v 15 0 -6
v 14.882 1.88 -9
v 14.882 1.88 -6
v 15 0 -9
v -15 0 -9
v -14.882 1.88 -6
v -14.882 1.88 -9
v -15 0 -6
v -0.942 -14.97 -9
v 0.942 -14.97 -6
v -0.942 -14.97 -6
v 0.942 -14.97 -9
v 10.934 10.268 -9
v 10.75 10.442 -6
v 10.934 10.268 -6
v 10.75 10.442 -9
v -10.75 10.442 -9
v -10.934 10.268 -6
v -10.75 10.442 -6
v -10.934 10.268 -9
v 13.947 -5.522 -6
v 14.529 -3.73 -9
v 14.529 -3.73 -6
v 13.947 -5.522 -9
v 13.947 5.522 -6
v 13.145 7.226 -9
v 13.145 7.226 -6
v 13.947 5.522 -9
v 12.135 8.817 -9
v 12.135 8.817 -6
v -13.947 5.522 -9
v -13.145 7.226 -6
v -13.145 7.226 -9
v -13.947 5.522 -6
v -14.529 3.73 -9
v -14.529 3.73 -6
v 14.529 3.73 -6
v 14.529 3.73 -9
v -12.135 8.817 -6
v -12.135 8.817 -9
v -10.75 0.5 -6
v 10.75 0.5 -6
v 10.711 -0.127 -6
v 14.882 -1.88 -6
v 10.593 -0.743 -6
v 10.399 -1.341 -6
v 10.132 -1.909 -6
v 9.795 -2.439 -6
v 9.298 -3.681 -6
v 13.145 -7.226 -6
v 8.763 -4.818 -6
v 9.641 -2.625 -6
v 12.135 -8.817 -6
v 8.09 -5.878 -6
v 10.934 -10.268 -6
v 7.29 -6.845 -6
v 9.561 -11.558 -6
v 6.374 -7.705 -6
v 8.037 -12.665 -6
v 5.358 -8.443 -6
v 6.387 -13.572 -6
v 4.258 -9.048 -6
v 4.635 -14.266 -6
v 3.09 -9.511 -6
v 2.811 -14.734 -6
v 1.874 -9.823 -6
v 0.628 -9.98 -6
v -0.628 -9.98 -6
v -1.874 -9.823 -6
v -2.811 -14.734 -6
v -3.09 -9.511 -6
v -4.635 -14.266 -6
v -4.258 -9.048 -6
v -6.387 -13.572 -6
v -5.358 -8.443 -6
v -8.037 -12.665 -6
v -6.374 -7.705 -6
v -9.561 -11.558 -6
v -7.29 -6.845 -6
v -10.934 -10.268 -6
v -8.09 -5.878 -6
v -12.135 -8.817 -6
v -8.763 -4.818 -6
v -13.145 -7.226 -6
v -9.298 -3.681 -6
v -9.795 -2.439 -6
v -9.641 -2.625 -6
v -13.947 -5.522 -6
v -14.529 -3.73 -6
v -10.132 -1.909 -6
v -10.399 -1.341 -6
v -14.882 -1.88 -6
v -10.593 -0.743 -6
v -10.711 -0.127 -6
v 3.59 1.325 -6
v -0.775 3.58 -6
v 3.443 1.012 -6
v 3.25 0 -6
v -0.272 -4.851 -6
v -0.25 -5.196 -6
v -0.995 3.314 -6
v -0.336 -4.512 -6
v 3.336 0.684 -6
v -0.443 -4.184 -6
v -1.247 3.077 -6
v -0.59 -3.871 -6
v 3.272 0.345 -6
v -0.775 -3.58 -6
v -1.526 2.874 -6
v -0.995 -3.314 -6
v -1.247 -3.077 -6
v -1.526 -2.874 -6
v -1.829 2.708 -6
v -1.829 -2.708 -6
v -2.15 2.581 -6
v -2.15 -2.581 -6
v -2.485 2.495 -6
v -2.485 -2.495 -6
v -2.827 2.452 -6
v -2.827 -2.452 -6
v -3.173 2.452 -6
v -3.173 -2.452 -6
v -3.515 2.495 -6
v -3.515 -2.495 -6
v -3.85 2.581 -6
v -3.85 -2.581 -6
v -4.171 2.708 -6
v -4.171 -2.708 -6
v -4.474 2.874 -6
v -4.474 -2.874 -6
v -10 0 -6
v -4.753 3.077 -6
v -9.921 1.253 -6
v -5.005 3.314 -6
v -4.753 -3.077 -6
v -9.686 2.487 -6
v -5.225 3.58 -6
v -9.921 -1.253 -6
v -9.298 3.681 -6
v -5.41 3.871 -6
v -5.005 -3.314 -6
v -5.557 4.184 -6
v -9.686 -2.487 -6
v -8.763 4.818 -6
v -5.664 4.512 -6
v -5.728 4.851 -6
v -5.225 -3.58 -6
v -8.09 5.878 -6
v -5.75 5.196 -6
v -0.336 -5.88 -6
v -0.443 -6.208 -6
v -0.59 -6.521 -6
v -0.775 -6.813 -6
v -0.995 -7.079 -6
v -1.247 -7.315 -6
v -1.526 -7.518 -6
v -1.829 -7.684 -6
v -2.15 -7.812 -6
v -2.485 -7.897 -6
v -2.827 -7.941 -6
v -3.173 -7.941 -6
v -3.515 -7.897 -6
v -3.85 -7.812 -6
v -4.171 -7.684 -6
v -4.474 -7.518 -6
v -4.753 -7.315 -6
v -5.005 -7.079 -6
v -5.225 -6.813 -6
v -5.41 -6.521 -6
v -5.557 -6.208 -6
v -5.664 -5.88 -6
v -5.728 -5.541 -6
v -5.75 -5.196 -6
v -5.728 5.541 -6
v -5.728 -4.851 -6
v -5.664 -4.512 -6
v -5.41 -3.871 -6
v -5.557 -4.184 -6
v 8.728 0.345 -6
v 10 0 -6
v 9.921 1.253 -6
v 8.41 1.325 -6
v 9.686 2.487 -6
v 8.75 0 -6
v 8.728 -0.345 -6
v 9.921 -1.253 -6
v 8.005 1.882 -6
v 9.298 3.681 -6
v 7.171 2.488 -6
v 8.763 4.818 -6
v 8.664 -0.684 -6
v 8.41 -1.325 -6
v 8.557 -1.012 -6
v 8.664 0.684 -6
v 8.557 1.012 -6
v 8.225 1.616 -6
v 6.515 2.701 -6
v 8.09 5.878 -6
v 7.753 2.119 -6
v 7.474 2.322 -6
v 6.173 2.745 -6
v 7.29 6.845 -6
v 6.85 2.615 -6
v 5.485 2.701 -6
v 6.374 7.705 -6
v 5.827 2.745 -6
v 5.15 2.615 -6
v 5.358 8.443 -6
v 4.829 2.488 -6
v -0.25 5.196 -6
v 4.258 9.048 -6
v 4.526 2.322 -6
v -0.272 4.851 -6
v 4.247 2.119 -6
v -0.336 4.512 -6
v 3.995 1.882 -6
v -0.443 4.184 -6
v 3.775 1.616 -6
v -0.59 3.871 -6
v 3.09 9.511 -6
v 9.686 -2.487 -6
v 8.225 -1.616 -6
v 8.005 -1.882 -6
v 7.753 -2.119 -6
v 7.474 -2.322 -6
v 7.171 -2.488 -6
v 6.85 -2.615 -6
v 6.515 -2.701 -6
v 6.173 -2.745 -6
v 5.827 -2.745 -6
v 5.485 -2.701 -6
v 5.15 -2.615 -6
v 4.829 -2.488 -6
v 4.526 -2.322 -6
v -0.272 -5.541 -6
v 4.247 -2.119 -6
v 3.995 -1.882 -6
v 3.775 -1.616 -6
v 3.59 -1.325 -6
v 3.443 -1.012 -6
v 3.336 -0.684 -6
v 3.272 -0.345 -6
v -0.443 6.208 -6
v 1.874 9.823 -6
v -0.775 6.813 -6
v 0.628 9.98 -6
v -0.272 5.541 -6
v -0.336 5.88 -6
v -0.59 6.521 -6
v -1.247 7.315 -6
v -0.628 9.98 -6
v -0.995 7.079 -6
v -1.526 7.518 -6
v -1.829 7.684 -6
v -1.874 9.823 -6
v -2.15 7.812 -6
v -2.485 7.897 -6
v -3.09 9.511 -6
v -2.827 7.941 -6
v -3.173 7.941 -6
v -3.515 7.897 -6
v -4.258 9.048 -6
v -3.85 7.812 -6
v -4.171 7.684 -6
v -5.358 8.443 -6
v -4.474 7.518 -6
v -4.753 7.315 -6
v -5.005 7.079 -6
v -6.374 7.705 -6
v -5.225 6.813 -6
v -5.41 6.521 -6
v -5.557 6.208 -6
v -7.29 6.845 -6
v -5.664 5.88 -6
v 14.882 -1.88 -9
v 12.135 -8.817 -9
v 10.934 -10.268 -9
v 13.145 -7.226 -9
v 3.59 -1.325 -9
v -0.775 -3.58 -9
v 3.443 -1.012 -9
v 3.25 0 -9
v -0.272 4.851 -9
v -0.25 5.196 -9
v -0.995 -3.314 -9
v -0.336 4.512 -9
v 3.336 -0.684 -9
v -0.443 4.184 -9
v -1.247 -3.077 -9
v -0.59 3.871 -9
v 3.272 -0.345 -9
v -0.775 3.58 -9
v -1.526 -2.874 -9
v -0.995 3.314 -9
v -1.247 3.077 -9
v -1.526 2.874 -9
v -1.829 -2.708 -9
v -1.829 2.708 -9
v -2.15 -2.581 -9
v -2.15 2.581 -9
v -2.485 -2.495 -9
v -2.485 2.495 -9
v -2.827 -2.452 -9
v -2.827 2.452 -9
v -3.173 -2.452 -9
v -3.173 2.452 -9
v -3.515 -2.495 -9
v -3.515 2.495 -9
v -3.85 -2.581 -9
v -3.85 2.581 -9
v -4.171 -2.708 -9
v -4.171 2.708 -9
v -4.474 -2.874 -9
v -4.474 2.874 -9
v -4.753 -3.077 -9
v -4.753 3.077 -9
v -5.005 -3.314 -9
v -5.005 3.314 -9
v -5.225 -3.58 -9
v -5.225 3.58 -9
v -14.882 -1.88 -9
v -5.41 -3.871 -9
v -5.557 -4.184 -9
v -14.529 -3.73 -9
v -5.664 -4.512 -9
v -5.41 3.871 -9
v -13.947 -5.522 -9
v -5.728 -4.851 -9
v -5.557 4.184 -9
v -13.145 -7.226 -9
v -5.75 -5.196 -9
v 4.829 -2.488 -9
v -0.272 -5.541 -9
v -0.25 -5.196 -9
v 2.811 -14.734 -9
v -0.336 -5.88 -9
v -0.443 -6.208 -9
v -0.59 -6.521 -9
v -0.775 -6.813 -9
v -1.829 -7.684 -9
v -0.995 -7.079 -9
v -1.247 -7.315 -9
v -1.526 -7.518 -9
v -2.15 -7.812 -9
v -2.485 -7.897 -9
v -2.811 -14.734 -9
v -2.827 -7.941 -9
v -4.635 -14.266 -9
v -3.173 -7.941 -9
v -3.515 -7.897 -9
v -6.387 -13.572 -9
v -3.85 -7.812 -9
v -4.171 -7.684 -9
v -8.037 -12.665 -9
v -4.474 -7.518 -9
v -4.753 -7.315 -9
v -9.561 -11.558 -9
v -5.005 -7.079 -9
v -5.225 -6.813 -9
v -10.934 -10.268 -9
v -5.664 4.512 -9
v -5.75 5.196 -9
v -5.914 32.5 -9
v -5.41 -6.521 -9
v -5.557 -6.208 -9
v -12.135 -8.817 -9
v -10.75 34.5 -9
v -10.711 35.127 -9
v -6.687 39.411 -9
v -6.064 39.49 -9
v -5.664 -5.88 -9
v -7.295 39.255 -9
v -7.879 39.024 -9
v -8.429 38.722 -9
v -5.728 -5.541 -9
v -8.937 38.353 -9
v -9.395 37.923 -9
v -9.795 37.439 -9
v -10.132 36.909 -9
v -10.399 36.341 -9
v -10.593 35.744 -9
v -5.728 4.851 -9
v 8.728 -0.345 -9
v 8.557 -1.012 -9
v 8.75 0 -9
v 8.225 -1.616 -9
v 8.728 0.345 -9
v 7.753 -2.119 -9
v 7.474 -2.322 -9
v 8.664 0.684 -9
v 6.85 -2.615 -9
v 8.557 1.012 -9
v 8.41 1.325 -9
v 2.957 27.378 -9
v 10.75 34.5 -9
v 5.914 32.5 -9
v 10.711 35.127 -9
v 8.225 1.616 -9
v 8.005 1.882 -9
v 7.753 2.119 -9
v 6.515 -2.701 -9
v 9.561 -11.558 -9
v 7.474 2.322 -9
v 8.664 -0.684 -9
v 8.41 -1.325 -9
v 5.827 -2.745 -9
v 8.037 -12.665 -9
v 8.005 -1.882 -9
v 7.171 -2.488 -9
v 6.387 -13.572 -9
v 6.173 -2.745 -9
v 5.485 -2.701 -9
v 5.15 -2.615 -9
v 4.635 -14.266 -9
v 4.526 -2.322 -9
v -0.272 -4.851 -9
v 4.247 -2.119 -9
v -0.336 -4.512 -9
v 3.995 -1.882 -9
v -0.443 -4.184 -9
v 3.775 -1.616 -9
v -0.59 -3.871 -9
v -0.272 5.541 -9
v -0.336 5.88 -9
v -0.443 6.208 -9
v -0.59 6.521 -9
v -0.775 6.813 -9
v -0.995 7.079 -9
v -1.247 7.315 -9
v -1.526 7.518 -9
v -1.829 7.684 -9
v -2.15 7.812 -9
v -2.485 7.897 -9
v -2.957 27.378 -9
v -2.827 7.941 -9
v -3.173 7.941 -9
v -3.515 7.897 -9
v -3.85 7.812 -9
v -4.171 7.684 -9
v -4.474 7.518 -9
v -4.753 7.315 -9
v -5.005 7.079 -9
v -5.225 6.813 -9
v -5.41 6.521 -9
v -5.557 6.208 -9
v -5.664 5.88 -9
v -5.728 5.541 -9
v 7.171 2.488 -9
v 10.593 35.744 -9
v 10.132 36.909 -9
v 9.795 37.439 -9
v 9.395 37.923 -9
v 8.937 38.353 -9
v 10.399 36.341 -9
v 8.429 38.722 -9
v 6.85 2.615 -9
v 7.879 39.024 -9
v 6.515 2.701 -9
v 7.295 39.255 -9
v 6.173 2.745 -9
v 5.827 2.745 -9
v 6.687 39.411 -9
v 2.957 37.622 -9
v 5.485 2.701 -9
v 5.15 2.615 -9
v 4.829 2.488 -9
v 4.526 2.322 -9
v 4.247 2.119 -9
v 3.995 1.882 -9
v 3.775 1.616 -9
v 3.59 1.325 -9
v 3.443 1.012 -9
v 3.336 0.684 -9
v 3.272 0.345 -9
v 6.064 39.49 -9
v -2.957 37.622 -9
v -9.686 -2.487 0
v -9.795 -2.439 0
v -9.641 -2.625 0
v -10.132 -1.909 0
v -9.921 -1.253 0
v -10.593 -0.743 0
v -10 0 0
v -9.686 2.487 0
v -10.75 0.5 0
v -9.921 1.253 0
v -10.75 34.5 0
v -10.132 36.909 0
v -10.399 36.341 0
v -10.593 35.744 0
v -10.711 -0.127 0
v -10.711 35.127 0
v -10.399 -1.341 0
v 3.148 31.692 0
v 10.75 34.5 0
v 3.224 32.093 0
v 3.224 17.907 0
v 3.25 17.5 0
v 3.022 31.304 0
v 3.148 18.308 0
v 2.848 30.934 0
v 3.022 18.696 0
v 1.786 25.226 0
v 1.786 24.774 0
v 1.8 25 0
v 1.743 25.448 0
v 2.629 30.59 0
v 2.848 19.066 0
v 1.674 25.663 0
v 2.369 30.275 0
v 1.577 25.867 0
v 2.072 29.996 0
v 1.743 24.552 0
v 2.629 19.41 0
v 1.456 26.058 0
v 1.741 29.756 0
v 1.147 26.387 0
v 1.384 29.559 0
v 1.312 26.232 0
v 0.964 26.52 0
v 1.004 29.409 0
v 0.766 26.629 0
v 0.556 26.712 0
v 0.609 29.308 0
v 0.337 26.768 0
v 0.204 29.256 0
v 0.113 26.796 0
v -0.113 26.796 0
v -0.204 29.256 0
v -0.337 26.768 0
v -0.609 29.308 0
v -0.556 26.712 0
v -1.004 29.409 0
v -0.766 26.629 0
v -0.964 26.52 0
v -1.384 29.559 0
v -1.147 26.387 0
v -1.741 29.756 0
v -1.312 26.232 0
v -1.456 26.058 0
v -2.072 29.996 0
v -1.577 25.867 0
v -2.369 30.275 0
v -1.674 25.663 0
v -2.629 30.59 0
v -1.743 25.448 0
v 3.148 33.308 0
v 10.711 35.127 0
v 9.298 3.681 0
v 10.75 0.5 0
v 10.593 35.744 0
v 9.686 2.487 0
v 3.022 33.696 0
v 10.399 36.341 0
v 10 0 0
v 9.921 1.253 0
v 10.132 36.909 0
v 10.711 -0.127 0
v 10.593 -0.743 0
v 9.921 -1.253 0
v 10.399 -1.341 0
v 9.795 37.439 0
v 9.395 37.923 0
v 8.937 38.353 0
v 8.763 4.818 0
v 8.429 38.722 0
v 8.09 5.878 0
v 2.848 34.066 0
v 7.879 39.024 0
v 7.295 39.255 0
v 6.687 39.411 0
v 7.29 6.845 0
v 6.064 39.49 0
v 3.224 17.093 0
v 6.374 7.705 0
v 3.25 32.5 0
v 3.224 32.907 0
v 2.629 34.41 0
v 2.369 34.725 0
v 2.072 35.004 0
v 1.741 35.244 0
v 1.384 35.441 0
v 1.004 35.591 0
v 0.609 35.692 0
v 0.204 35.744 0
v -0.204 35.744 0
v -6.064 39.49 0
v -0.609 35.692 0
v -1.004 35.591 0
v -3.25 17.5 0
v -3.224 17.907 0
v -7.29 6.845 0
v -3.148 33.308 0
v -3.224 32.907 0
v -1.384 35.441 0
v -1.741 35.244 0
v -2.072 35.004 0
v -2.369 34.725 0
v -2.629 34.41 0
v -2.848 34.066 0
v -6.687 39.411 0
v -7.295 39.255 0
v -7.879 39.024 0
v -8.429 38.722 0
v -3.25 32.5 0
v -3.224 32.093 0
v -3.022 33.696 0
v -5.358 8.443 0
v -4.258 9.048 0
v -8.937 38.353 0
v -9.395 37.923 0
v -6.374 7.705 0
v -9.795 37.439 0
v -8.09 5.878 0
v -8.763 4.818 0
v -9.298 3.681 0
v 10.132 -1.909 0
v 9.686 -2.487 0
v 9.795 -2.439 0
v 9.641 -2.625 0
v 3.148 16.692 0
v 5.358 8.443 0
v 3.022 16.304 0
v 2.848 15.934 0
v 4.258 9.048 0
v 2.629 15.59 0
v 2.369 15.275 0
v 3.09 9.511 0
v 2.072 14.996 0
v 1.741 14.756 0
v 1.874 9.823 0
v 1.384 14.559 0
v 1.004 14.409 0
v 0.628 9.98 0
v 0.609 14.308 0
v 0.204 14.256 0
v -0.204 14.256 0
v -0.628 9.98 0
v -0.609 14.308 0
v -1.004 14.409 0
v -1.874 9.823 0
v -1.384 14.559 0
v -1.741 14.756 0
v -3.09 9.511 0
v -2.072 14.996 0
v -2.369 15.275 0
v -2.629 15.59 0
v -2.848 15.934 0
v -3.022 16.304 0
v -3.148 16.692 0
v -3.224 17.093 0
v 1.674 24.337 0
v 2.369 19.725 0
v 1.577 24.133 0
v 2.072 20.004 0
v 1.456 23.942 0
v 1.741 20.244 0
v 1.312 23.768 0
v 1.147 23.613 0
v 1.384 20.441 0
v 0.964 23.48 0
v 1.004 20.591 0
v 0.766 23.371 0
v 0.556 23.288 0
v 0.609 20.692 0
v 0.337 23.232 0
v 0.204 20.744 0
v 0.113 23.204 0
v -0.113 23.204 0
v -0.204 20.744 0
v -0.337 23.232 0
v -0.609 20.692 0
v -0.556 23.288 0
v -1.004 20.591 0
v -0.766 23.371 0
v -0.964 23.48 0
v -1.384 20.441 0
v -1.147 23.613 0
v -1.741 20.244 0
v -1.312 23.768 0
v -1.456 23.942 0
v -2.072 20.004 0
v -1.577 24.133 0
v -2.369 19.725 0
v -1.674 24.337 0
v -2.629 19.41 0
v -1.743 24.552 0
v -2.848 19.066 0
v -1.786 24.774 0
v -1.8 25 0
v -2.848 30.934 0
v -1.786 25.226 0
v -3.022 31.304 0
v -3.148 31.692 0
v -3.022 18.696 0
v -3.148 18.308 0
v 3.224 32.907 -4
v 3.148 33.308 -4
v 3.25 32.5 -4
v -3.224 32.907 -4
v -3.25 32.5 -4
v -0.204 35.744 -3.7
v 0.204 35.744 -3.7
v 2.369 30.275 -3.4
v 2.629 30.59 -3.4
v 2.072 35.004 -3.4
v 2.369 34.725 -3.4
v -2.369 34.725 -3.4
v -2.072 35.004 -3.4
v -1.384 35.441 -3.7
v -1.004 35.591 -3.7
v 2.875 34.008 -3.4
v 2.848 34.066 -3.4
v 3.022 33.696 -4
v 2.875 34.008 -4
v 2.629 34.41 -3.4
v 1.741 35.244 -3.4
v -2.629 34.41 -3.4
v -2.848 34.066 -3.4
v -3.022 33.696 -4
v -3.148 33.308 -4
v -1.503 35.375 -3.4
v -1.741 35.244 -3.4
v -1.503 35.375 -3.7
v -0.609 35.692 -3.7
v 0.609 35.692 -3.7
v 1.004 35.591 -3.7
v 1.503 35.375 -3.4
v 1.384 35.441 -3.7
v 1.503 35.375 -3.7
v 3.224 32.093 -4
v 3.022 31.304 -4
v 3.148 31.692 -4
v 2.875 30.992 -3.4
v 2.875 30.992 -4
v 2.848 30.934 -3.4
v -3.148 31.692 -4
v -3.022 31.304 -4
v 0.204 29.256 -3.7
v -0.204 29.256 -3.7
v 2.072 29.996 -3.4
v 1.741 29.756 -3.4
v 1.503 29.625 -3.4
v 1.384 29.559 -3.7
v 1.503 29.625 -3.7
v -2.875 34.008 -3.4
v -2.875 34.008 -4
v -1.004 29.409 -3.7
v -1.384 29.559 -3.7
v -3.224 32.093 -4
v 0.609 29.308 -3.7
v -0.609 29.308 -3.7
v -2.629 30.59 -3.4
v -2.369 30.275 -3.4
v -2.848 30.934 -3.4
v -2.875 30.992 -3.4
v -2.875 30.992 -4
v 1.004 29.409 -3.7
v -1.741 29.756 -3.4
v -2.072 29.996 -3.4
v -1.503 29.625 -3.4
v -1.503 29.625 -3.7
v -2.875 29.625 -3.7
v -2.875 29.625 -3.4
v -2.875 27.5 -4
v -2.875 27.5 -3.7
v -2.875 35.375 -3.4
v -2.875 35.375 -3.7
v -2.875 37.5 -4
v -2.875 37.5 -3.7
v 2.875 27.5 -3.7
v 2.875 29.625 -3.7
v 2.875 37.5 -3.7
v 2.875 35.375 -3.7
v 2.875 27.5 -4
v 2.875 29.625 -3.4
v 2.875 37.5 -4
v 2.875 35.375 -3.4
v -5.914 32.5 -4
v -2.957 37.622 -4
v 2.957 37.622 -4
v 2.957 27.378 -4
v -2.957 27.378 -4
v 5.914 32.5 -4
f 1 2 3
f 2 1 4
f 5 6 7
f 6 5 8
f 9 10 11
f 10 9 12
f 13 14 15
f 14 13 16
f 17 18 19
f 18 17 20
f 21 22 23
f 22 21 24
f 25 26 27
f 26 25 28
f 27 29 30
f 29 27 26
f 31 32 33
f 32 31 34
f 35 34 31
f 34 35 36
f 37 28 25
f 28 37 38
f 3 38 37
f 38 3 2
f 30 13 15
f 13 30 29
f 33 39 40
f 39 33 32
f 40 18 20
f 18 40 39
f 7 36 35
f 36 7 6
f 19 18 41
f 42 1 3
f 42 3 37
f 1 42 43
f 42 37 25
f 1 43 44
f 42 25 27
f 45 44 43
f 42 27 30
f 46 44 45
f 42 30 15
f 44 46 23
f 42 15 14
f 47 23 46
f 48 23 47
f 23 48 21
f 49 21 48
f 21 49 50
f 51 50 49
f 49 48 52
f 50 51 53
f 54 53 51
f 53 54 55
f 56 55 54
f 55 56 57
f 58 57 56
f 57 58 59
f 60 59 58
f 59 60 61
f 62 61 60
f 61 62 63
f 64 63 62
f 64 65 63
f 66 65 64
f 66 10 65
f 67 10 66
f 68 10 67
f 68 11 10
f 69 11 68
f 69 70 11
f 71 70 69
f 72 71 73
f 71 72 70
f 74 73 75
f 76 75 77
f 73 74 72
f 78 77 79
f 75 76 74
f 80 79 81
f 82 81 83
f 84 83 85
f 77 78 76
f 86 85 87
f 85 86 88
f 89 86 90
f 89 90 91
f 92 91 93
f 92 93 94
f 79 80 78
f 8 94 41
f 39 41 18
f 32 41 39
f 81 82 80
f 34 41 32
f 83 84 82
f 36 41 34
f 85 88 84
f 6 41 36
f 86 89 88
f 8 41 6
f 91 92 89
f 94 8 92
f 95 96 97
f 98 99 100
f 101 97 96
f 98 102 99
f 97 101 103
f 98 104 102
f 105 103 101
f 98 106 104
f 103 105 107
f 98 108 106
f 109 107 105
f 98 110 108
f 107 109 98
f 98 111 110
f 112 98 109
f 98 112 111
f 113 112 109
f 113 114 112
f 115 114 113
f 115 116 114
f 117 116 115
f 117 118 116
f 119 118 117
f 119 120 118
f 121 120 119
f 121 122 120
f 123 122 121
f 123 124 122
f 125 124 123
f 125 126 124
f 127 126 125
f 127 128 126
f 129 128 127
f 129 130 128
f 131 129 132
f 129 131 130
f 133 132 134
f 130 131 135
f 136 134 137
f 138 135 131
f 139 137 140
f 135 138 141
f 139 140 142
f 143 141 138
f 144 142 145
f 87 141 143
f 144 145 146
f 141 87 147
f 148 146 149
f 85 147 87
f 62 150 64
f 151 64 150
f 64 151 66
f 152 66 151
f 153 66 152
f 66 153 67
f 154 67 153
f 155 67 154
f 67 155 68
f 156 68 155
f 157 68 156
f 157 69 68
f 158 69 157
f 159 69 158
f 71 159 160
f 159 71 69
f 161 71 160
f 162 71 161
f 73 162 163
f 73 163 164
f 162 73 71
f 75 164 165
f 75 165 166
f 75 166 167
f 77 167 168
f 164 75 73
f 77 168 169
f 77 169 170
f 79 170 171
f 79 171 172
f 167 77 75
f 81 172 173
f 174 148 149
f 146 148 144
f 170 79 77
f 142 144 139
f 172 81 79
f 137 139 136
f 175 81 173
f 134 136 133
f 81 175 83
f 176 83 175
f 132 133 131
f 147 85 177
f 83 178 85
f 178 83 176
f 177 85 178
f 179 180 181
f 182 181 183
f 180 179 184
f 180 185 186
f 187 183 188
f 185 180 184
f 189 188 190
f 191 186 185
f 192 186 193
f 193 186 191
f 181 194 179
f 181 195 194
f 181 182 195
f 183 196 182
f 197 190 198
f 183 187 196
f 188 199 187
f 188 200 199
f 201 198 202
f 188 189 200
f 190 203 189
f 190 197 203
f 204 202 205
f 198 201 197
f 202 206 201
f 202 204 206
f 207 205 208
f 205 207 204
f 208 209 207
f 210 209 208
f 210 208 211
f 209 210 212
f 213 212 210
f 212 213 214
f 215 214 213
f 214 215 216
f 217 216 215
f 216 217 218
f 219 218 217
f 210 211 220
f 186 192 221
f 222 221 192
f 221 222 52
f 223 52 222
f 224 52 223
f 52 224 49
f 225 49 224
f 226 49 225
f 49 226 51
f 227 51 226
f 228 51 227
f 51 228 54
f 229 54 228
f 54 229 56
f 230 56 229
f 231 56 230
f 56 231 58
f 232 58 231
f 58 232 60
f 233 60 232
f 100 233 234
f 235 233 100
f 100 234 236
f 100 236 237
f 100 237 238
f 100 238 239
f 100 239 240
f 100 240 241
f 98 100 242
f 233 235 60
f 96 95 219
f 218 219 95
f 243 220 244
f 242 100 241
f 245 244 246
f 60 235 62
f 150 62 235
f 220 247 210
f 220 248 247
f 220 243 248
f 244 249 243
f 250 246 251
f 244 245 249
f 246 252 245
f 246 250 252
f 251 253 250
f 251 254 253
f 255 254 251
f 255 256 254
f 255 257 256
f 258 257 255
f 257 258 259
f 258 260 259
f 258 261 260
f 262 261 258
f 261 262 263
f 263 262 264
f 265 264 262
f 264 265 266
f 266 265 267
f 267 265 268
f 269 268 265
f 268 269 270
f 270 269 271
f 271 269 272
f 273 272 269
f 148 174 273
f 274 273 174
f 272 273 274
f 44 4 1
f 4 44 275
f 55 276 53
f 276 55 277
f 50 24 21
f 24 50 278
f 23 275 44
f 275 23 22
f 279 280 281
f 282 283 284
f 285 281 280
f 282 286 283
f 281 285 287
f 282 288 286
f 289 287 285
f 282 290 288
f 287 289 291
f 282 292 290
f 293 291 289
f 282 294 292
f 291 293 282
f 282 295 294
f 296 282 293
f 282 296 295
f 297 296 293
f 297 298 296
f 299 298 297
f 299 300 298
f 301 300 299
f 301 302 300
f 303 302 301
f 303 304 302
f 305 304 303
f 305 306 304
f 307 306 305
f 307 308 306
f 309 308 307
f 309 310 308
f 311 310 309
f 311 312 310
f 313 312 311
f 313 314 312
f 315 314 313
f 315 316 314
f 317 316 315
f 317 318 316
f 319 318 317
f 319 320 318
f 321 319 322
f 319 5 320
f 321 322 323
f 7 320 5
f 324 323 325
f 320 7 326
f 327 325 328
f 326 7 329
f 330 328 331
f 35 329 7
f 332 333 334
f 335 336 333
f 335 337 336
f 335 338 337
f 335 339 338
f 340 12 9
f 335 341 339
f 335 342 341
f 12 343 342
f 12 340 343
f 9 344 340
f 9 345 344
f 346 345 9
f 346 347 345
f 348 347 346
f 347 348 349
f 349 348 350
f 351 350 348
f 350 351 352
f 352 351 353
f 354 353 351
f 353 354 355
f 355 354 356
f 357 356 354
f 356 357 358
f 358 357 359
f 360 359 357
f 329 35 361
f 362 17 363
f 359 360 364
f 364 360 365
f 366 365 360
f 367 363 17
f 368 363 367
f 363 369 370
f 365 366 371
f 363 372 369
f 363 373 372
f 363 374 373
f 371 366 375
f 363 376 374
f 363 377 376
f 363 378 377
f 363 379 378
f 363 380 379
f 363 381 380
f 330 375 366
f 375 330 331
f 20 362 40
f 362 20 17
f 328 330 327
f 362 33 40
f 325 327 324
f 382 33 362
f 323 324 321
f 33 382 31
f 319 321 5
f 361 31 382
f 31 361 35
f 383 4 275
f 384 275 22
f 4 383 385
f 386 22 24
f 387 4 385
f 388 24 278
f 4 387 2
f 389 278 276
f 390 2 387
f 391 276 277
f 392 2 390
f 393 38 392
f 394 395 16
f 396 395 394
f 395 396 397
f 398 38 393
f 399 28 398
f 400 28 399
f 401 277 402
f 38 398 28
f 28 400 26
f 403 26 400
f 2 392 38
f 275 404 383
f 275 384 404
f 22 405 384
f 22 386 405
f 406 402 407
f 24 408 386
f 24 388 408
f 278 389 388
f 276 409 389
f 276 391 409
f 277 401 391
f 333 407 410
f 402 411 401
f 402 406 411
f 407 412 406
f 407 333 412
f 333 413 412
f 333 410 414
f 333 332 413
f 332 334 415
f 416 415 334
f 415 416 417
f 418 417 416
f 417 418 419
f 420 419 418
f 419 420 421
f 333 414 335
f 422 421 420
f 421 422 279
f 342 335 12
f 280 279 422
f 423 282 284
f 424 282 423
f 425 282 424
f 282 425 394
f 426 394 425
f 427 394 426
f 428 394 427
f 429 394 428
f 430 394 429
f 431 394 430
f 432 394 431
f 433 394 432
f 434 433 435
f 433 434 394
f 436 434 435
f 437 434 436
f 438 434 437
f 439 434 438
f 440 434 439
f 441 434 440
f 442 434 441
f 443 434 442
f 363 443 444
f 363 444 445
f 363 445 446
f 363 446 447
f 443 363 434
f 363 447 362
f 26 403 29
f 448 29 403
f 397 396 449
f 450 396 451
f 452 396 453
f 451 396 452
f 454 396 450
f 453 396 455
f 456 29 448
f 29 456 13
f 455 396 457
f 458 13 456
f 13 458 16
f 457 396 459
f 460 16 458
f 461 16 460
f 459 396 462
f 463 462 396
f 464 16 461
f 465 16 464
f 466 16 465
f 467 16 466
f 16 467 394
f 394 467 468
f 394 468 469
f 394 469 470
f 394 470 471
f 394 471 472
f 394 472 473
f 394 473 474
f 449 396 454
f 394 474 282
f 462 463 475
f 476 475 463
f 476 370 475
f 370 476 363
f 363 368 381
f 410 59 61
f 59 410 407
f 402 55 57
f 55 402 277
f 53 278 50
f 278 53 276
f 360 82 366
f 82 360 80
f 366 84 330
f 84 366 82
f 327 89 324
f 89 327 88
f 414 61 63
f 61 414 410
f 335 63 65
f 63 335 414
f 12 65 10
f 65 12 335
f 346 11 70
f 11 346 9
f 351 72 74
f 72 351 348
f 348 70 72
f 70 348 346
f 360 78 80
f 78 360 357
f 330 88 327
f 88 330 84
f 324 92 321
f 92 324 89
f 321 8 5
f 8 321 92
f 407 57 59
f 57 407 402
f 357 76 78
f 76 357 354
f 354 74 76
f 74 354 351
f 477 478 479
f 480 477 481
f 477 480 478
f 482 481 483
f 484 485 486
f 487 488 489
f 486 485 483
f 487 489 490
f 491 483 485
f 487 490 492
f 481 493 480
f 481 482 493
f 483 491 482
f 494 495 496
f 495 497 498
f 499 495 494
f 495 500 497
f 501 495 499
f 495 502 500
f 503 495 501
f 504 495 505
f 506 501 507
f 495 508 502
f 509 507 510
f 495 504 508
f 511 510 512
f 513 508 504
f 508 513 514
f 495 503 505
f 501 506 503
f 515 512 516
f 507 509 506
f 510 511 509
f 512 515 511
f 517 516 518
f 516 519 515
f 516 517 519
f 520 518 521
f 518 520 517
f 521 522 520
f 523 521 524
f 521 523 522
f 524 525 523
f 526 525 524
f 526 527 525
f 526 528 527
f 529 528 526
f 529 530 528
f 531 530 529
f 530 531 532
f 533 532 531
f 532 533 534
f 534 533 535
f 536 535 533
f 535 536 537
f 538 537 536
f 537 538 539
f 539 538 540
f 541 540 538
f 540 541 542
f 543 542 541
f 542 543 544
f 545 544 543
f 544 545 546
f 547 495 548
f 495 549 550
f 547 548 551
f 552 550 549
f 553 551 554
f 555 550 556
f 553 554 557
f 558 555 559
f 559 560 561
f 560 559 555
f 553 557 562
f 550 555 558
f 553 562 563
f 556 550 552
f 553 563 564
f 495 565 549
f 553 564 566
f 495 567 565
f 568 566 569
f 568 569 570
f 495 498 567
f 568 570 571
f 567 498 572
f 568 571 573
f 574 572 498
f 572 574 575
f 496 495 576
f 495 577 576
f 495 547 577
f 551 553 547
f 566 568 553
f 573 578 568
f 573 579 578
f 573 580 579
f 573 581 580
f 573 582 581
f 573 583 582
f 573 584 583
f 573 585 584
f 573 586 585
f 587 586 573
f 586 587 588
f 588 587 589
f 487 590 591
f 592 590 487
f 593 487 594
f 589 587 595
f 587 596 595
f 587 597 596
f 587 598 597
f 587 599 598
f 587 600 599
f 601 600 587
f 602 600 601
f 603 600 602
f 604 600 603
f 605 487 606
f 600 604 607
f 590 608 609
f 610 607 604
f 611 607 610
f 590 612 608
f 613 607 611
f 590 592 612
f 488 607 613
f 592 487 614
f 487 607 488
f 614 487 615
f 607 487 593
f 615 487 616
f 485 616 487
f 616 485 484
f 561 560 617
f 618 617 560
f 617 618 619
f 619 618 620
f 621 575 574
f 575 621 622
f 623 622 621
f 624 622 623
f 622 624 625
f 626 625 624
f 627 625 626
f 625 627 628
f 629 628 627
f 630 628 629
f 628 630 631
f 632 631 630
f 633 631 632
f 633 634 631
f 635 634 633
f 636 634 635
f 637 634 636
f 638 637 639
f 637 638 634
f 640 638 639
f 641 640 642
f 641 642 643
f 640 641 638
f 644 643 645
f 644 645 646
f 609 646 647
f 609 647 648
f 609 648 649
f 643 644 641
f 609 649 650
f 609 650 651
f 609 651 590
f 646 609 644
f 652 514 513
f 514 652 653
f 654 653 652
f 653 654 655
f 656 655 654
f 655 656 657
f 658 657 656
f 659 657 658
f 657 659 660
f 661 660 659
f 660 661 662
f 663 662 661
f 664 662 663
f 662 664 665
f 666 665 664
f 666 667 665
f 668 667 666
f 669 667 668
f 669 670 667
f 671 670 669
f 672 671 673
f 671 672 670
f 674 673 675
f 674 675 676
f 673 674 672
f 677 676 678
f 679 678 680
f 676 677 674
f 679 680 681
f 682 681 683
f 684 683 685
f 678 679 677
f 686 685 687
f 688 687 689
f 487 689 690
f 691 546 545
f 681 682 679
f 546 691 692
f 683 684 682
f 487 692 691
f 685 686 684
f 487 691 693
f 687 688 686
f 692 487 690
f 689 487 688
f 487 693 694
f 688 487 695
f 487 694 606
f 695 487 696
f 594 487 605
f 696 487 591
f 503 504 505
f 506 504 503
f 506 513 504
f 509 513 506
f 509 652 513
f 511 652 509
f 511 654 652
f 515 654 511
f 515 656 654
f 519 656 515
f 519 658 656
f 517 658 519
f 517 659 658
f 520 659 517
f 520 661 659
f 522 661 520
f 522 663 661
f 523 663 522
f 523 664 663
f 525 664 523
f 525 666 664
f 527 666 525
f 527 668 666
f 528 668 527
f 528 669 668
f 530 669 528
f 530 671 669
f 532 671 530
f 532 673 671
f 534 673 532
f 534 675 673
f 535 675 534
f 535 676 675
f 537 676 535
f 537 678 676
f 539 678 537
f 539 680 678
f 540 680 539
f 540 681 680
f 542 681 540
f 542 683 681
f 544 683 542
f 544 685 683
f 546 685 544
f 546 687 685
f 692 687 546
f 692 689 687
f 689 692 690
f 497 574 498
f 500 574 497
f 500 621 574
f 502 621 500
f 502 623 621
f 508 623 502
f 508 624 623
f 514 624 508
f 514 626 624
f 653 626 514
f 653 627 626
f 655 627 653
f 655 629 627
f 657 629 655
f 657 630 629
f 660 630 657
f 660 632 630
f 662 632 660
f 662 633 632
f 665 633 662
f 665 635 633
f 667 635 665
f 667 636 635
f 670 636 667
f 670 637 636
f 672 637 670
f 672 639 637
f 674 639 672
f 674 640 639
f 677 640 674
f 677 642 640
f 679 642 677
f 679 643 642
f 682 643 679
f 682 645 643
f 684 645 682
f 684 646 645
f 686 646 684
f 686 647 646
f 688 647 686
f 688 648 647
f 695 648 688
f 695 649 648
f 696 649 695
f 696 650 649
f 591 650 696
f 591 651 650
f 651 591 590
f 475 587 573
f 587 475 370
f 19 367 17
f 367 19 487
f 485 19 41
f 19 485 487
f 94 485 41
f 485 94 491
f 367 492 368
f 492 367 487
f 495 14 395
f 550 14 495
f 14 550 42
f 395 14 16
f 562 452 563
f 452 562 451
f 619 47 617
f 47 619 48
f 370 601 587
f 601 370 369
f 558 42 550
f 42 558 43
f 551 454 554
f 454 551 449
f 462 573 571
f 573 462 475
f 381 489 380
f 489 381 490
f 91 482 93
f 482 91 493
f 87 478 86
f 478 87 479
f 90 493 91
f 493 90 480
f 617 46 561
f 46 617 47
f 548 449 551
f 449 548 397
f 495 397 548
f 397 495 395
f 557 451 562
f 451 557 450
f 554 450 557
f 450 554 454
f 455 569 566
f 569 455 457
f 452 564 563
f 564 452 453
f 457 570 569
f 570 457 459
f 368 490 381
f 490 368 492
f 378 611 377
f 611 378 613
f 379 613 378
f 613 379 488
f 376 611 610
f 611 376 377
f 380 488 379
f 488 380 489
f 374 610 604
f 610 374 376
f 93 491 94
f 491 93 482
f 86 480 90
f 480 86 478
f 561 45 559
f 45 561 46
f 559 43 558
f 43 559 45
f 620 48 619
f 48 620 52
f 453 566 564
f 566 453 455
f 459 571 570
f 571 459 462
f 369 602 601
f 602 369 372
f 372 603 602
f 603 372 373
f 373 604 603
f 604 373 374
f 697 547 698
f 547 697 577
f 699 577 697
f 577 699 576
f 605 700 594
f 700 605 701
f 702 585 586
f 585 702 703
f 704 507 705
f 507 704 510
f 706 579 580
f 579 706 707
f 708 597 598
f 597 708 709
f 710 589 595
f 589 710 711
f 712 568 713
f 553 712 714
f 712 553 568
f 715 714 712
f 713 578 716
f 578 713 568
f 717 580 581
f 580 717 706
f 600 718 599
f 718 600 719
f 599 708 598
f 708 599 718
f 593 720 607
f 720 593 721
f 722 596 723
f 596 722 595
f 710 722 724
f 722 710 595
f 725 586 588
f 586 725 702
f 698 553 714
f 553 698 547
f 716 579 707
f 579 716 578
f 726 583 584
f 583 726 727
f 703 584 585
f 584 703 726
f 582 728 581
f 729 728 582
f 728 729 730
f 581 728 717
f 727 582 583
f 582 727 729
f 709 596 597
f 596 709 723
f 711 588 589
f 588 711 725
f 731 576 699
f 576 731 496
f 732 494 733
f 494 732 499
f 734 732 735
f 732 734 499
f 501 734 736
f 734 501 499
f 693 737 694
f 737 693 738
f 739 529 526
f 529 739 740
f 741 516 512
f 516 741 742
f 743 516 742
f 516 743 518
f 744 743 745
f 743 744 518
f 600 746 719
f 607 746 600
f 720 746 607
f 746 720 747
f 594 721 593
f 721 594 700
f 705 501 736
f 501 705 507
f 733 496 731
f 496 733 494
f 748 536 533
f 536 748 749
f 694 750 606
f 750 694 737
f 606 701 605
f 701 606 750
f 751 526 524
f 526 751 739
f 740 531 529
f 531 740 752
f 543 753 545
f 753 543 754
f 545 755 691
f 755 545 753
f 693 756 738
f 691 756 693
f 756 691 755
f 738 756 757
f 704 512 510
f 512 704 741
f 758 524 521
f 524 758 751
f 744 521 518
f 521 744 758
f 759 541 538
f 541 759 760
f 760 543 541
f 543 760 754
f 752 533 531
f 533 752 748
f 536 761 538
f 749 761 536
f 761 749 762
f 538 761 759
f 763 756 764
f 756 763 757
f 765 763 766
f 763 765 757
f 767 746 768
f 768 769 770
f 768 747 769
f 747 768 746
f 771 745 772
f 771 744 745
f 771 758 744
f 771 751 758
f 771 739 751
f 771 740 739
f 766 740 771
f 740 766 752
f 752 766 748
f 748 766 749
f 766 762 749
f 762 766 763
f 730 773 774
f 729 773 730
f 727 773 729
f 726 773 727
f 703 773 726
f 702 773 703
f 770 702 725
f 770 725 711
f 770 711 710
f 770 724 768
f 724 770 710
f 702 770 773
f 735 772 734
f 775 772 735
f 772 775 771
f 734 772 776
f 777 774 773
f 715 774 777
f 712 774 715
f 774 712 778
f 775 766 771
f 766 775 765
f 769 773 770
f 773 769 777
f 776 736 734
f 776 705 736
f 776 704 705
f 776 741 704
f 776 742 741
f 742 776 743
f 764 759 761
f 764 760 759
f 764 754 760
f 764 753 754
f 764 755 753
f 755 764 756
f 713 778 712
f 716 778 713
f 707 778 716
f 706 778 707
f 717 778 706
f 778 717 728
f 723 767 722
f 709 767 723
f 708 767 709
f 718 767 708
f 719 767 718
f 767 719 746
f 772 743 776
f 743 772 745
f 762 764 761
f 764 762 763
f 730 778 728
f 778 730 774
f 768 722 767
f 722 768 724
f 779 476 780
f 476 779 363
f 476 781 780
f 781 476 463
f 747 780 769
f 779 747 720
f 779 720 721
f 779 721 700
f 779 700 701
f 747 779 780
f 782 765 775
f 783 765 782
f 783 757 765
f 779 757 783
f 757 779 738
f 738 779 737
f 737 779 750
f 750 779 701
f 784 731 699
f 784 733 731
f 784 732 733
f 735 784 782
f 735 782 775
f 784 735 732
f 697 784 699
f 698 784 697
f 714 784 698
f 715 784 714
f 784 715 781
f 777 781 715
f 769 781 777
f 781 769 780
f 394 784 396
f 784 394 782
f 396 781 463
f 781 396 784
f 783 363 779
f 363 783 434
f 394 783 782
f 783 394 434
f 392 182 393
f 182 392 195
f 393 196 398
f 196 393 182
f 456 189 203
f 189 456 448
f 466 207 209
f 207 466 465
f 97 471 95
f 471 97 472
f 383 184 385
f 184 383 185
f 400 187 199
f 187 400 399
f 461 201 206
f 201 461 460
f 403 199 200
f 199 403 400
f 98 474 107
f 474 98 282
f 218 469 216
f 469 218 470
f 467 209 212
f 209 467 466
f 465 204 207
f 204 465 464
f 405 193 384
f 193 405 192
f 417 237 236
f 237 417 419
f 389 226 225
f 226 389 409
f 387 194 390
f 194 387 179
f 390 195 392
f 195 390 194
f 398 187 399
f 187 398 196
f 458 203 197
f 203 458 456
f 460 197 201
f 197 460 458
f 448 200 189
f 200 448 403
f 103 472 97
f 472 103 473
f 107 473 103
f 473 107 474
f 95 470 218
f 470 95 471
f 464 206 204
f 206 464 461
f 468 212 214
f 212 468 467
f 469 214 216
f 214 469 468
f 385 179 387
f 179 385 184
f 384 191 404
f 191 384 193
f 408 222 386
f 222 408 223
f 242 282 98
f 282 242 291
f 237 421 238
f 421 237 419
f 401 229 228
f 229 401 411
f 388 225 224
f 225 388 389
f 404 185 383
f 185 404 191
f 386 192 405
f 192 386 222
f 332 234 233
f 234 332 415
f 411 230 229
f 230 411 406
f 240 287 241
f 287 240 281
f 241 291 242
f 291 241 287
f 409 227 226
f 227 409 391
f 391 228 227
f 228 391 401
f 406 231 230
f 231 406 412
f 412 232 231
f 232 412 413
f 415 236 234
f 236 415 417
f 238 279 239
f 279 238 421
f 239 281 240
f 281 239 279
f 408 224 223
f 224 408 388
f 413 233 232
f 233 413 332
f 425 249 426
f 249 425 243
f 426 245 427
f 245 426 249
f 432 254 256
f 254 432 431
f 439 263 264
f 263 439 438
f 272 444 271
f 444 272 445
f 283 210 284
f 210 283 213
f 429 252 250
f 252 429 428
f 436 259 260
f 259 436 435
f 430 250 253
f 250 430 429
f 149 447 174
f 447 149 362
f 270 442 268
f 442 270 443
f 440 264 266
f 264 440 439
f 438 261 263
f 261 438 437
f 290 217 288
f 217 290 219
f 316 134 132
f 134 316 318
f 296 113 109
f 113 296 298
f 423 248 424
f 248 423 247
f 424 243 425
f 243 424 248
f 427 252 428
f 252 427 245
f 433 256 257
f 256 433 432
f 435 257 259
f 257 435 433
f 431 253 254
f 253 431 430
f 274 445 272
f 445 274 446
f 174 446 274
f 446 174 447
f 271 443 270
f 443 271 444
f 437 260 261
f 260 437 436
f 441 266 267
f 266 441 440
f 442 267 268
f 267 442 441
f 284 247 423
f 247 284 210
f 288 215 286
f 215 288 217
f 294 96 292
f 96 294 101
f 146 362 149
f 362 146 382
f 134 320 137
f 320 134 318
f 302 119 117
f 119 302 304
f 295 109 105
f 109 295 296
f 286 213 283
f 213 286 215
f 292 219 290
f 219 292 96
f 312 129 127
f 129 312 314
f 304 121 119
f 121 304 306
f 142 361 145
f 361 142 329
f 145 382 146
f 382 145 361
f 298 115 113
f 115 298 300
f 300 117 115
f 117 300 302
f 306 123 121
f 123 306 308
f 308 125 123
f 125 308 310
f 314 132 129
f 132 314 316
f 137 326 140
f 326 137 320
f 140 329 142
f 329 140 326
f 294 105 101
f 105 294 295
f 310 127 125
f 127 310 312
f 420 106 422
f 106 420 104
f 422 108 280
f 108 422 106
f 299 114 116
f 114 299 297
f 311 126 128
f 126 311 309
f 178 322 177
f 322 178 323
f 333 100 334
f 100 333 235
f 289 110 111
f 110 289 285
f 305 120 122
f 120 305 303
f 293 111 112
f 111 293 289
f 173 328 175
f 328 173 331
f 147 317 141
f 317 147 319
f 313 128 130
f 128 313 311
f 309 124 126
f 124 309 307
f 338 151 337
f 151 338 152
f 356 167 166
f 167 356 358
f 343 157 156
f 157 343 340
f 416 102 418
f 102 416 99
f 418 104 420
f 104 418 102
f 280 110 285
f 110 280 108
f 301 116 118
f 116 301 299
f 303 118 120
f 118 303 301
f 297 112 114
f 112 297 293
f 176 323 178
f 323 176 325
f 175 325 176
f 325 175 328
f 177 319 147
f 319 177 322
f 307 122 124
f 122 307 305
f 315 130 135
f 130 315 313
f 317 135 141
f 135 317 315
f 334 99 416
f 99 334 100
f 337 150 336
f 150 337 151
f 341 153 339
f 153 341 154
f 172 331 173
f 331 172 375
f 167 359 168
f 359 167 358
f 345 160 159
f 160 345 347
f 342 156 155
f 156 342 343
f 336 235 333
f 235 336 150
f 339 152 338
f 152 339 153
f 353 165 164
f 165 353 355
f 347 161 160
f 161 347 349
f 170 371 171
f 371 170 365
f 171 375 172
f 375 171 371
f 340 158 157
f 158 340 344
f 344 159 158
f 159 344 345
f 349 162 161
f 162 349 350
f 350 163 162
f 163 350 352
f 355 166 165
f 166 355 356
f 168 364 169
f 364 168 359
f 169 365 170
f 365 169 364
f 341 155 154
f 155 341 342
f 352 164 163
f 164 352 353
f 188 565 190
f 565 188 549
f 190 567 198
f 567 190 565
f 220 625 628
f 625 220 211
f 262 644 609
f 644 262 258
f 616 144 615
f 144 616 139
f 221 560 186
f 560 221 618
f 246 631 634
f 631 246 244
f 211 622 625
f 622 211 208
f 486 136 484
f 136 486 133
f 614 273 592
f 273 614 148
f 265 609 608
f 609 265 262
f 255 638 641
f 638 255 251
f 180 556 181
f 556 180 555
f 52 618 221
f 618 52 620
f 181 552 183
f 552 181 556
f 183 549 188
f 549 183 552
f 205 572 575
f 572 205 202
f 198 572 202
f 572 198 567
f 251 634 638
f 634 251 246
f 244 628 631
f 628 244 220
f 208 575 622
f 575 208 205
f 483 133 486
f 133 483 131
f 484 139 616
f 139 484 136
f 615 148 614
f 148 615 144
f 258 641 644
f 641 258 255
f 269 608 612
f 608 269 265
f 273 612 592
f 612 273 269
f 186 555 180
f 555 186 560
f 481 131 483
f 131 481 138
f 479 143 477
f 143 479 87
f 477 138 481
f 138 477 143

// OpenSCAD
$fn = 50;


difference() {
	union() {
		translate(v = [0, 0, -9.0000000000]) {
			cylinder(h = 3, r = 15.0000000000);
		}
		translate(v = [0, 17.5000000000, -9]) {
			hull() {
				translate(v = [-2.0000000000, 17.0000000000, 0]) {
					cylinder(h = 9, r = 5);
				}
				translate(v = [2.0000000000, 17.0000000000, 0]) {
					cylinder(h = 9, r = 5);
				}
				translate(v = [-2.0000000000, -17.0000000000, 0]) {
					cylinder(h = 9, r = 5);
				}
				translate(v = [2.0000000000, -17.0000000000, 0]) {
					cylinder(h = 9, r = 5);
				}
			}
		}
		translate(v = [0, 17.5000000000, -9]) {
			hull() {
				translate(v = [-5.7500000000, 17.0000000000, 0]) {
					cylinder(h = 9, r = 5);
				}
				translate(v = [5.7500000000, 17.0000000000, 0]) {
					cylinder(h = 9, r = 5);
				}
				translate(v = [-5.7500000000, -17.0000000000, 0]) {
					cylinder(h = 9, r = 5);
				}
				translate(v = [5.7500000000, -17.0000000000, 0]) {
					cylinder(h = 9, r = 5);
				}
			}
		}
	}
	union() {
		translate(v = [0, 32.5000000000, 0]) {
			rotate(a = [0, 0, 0]) {
				difference() {
					union() {
						translate(v = [0, 0, -50.0000000000]) {
							cylinder(h = 100, r = 3.2500000000);
						}
					}
					union();
				}
			}
		}
		translate(v = [0, 32.5000000000, -9]) {
			rotate(a = [0, 0, 0]) {
				difference() {
					union() {
						translate(v = [-2.8750000000, -5.0000000000, -0.3000000000]) {
							cube(size = [5.7500000000, 10, 0.3000000000]);
						}
						translate(v = [-2.8750000000, -2.8750000000, -0.6000000000]) {
							cube(size = [5.7500000000, 5.7500000000, 0.3000000000]);
						}
						translate(v = [-2.8750000000, -5.0000000000, 5]) {
							cube(size = [5.7500000000, 10, 0.3000000000]);
						}
						translate(v = [-2.8750000000, -2.8750000000, 5.3000000000]) {
							cube(size = [5.7500000000, 5.7500000000, 0.3000000000]);
						}
						linear_extrude(height = 5) {
							polygon(points = [[5.9142500000, 0.0000000000], [2.9571250000, 5.1218907443], [-2.9571250000, 5.1218907443], [-5.9142500000, 0.0000000000], [-2.9571250000, -5.1218907443], [2.9571250000, -5.1218907443]]);
						}
						translate(v = [-2.8750000000, -5.0000000000, -0.3000000000]) {
							cube(size = [5.7500000000, 10, 0.3000000000]);
						}
						translate(v = [-2.8750000000, -2.8750000000, -0.6000000000]) {
							cube(size = [5.7500000000, 5.7500000000, 0.3000000000]);
						}
						translate(v = [-2.8750000000, -5.0000000000, 5]) {
							cube(size = [5.7500000000, 10, 0.3000000000]);
						}
						translate(v = [-2.8750000000, -2.8750000000, 5.3000000000]) {
							cube(size = [5.7500000000, 5.7500000000, 0.3000000000]);
						}
						translate(v = [-2.8750000000, -5.0000000000, -0.3000000000]) {
							cube(size = [5.7500000000, 10, 0.3000000000]);
						}
						translate(v = [-2.8750000000, -2.8750000000, -0.6000000000]) {
							cube(size = [5.7500000000, 5.7500000000, 0.3000000000]);
						}
						translate(v = [-2.8750000000, -5.0000000000, 5]) {
							cube(size = [5.7500000000, 10, 0.3000000000]);
						}
						translate(v = [-2.8750000000, -2.8750000000, 5.3000000000]) {
							cube(size = [5.7500000000, 5.7500000000, 0.3000000000]);
						}
					}
					union();
				}
			}
		}
		translate(v = [6.0000000000, 0.0000000000, 41]) {
			rotate(a = [0, 0, 0]) {
				difference() {
					union() {
						translate(v = [0, 0, -59.0000000000]) {
							cylinder(h = 59, r = 2.2500000000);
						}
						translate(v = [0, 0, -4.2000000000]) {
							cylinder(h = 4.2000000000, r1 = 2.7500000000, r2 = 5.5000000000);
						}
						translate(v = [0, 0, -59.0000000000]) {
							cylinder(h = 59, r = 2.7500000000);
						}
						translate(v = [0, 0, -59.0000000000]) {
							cylinder(h = 59, r = 2.2500000000);
						}
					}
					union();
				}
			}
		}
		translate(v = [-3.0000000000, 5.1961524227, 41]) {
			rotate(a = [0, 0, 0]) {
				difference() {
					union() {
						translate(v = [0, 0, -59.0000000000]) {
							cylinder(h = 59, r = 2.2500000000);
						}
						translate(v = [0, 0, -4.2000000000]) {
							cylinder(h = 4.2000000000, r1 = 2.7500000000, r2 = 5.5000000000);
						}
						translate(v = [0, 0, -59.0000000000]) {
							cylinder(h = 59, r = 2.7500000000);
						}
						translate(v = [0, 0, -59.0000000000]) {
							cylinder(h = 59, r = 2.2500000000);
						}
					}
					union();
				}
			}
		}
		translate(v = [-3.0000000000, -5.1961524227, 41]) {
			rotate(a = [0, 0, 0]) {
				difference() {
					union() {
						translate(v = [0, 0, -59.0000000000]) {
							cylinder(h = 59, r = 2.2500000000);
						}
						translate(v = [0, 0, -4.2000000000]) {
							cylinder(h = 4.2000000000, r1 = 2.7500000000, r2 = 5.5000000000);
						}
						translate(v = [0, 0, -59.0000000000]) {
							cylinder(h = 59, r = 2.7500000000);
						}
						translate(v = [0, 0, -59.0000000000]) {
							cylinder(h = 59, r = 2.2500000000);
						}
					}
					union();
				}
			}
		}
		translate(v = [0, 0, -6.0000000000]) {
			cylinder(h = 100, r = 10.0000000000);
		}
		translate(v = [0.0000000000, 32.5000000000, 0]) {
			cylinder(h = 9, r = 3.2500000000);
		}
		translate(v = [0.0000000000, 17.5000000000, 0]) {
			cylinder(h = 9, r = 3.2500000000);
		}
		translate(v = [0.0000000000, 25.0000000000, 0]) {
			cylinder(h = 9, r = 1.8000000000);
		}
	}
}
